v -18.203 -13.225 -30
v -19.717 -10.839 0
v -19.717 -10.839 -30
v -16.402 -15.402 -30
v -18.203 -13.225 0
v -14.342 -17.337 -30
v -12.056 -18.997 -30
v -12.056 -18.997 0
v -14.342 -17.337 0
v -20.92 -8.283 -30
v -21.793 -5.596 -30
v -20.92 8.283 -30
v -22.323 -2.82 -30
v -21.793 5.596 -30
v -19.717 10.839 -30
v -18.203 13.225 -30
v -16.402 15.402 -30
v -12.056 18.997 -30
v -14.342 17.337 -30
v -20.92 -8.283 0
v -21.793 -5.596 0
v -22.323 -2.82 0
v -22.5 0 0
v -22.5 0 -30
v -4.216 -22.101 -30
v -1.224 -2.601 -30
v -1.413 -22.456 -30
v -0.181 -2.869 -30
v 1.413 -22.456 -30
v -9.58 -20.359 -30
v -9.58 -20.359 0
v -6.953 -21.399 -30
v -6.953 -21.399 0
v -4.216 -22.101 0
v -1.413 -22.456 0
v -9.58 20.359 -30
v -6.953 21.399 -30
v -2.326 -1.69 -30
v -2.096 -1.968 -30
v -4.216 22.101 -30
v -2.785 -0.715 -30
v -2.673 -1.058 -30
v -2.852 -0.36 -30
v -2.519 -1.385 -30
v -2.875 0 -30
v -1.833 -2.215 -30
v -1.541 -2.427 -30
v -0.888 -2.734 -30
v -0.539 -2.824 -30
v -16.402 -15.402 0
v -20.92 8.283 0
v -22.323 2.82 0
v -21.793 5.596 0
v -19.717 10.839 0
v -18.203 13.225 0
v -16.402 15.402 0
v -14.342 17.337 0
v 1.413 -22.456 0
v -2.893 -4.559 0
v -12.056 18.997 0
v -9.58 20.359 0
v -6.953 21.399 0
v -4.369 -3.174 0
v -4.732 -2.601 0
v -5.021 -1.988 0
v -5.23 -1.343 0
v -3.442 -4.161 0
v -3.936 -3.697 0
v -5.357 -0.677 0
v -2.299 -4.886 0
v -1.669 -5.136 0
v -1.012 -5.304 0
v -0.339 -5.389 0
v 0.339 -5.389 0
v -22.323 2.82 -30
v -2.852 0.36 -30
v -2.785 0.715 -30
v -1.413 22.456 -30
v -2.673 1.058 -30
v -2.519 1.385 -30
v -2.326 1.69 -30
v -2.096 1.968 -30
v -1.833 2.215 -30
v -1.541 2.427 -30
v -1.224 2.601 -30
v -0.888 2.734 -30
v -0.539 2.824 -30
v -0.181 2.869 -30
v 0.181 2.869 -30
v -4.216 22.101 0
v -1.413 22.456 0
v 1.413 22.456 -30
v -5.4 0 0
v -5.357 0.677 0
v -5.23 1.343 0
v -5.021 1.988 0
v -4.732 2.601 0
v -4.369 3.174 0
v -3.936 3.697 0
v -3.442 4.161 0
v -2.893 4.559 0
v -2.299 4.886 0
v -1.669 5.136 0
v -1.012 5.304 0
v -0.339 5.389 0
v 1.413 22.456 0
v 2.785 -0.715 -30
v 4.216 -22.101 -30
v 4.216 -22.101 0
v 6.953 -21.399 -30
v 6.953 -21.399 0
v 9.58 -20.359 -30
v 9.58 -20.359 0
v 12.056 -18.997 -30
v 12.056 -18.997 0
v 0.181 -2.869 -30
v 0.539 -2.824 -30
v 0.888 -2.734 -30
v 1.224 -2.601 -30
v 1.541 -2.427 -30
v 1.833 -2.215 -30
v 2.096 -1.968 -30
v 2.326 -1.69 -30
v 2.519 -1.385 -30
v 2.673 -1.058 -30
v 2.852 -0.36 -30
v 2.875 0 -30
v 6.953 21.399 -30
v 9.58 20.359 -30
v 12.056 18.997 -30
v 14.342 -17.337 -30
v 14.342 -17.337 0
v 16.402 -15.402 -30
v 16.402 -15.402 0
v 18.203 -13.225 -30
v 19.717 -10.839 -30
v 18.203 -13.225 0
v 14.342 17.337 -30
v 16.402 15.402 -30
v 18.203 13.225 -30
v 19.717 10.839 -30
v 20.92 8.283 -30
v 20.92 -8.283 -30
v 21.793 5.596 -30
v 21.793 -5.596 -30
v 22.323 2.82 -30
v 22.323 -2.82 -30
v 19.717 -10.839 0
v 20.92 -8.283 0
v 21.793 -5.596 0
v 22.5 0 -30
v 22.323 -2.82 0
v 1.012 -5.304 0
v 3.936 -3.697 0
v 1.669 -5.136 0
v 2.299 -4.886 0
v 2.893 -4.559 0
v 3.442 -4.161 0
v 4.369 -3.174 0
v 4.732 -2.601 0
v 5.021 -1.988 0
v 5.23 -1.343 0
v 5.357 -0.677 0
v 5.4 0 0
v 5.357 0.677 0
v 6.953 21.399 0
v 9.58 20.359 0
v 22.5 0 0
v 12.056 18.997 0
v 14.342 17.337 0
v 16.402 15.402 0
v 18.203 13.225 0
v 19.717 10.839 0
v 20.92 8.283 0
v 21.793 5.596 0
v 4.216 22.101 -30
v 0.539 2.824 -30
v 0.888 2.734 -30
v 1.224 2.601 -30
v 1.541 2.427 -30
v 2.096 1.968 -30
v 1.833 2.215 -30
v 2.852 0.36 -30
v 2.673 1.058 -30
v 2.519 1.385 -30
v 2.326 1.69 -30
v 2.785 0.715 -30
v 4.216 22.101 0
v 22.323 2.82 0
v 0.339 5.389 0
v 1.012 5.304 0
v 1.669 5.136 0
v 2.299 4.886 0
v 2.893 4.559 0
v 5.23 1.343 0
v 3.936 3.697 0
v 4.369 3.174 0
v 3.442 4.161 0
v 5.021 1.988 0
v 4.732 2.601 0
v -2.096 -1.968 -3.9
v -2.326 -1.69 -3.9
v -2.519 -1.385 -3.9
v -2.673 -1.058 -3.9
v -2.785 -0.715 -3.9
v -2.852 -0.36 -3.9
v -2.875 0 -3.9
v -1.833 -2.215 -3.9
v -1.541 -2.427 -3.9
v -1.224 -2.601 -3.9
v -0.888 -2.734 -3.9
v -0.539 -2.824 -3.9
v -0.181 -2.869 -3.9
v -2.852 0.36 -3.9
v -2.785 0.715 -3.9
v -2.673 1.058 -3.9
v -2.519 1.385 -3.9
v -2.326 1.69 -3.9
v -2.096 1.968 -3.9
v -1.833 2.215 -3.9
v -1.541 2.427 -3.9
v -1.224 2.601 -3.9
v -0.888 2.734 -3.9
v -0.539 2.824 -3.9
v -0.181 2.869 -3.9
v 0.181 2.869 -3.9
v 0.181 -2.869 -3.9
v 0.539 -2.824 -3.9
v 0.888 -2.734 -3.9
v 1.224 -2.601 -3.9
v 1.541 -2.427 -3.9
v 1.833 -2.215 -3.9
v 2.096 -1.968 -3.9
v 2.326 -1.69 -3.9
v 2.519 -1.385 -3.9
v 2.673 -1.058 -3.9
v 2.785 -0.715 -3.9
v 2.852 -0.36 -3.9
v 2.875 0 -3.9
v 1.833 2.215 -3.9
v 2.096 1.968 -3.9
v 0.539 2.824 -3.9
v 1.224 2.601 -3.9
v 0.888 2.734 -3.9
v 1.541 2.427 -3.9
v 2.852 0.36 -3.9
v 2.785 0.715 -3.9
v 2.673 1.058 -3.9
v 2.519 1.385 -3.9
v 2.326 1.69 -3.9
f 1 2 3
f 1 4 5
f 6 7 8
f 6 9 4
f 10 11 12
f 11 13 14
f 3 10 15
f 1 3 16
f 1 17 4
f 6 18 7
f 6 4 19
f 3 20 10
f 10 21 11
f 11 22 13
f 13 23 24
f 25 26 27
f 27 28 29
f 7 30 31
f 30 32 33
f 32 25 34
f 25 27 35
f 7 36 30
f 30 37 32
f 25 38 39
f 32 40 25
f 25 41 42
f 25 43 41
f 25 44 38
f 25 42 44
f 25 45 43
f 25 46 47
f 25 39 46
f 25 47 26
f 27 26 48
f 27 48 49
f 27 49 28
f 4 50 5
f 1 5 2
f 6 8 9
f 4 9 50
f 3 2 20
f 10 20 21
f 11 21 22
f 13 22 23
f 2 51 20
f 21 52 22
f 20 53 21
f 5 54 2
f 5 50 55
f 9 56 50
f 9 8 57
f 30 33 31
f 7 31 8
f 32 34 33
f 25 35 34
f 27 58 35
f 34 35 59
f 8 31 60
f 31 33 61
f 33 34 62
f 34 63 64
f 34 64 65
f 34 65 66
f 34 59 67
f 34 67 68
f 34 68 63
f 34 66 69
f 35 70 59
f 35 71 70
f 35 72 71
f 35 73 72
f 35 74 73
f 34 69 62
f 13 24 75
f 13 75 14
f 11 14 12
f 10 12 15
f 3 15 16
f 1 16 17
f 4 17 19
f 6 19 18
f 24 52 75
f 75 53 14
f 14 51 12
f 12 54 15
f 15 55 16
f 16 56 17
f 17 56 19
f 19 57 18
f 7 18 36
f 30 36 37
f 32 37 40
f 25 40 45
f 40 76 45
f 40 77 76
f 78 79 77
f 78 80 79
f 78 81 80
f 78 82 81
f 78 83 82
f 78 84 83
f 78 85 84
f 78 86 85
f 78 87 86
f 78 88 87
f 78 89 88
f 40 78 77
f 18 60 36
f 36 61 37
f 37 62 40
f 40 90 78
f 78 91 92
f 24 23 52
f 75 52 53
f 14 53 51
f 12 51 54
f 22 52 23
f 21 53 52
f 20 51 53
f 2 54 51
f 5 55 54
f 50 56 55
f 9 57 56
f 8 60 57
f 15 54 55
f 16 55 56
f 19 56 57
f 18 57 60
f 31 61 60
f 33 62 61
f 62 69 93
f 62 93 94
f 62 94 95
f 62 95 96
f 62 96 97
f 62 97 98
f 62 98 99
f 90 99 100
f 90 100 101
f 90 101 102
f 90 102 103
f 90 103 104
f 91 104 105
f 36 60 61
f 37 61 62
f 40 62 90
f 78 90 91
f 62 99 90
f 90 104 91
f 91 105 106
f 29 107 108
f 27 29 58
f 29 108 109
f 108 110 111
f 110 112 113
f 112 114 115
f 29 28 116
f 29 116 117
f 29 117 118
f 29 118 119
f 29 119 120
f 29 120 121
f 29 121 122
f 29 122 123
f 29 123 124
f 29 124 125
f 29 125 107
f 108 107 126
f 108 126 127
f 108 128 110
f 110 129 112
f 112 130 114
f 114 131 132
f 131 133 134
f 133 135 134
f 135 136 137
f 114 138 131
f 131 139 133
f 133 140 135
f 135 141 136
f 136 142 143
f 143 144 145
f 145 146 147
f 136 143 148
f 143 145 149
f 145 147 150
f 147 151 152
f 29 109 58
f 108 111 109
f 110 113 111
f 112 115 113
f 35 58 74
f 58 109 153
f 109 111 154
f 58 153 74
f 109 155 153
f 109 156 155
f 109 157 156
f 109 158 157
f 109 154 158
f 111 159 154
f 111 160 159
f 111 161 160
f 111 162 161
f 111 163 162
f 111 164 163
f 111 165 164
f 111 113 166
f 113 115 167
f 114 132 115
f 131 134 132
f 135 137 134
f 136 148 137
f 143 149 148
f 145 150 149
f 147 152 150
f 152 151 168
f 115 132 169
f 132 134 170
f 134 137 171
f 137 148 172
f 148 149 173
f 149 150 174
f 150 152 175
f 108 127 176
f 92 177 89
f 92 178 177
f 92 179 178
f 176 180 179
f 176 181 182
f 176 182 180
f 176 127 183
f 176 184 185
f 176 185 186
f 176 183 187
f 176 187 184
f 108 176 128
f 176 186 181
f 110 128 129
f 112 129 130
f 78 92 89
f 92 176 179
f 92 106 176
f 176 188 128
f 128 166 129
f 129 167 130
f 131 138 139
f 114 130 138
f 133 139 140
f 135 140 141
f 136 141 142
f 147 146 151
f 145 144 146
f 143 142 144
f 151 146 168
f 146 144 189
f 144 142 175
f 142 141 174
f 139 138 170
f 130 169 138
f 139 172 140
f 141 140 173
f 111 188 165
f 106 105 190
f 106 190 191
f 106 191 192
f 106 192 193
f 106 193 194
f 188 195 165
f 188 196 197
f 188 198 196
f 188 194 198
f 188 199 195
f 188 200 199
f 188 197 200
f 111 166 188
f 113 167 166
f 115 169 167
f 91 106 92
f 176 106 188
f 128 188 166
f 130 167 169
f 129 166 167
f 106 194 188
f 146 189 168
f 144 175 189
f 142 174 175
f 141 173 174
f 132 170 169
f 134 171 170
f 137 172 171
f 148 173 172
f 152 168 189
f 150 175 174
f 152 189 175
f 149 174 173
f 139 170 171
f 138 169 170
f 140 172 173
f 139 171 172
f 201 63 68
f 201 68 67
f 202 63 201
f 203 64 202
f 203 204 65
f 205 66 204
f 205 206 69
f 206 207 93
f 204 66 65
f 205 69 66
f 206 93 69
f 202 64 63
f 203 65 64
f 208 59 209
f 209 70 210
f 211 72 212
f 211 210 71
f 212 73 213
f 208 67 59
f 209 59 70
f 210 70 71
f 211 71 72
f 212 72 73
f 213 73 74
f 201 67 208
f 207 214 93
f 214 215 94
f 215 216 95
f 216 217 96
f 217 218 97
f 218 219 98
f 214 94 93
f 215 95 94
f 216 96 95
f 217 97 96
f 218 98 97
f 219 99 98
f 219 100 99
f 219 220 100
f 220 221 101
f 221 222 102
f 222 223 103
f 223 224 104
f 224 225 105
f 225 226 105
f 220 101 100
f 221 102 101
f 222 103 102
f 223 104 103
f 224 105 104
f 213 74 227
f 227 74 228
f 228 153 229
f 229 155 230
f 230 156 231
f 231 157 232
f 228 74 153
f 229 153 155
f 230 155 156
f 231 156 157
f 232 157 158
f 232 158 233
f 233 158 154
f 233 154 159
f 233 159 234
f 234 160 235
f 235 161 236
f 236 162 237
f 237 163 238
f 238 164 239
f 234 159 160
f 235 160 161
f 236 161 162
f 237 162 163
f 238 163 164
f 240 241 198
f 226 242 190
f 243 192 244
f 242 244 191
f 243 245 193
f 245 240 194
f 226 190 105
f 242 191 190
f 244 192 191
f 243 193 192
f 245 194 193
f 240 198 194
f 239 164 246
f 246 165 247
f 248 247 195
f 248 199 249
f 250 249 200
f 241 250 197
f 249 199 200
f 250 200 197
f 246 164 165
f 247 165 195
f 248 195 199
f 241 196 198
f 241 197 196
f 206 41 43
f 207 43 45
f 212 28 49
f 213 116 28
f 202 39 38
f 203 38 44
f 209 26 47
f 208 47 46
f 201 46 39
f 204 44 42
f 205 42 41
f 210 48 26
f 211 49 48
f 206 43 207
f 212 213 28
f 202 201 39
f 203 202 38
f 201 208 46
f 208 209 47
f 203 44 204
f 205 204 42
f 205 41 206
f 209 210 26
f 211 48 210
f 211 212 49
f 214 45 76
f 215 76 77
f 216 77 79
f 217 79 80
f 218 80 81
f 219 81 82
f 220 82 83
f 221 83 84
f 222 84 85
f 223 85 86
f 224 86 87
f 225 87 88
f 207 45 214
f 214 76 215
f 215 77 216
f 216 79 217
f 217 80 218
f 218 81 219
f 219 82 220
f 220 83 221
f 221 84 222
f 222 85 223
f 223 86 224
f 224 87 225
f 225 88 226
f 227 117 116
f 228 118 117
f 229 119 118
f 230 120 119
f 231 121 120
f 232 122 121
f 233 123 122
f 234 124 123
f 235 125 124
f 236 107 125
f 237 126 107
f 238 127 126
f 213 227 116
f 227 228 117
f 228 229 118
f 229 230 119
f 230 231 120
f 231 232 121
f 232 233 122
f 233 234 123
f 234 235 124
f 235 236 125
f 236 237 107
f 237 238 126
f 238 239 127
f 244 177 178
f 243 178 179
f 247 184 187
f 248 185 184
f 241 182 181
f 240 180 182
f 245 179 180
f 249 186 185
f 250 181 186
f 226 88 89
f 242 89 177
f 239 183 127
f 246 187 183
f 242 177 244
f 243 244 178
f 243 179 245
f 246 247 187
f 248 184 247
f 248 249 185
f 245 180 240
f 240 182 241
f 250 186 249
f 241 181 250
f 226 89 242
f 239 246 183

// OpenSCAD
$fn = 50;

difference() {
	union() {
		translate(v = [0, 0, -30.0]) {
			cylinder(h = 30, r = 22.5);
		}
	}
	union() {
		translate(v = [0, 0, 0]) {
			rotate(a = [0, 0, 0]) {
				difference() {
					union() {
						translate(v = [0, 0, -33.0]) {
							cylinder(h = 33, r = 2.6);
						}
						translate(v = [0, 0, -3.9]) {
							cylinder(h = 3.9, r1 = 2.875, r2 = 5.4);
						}
						translate(v = [0, 0, -33.0]) {
							cylinder(h = 33, r = 2.875);
						}
						translate(v = [0, 0, -33.0]) {
							cylinder(h = 33, r = 2.6);
						}
					}
					union();
				}
			}
		}
	}
}
